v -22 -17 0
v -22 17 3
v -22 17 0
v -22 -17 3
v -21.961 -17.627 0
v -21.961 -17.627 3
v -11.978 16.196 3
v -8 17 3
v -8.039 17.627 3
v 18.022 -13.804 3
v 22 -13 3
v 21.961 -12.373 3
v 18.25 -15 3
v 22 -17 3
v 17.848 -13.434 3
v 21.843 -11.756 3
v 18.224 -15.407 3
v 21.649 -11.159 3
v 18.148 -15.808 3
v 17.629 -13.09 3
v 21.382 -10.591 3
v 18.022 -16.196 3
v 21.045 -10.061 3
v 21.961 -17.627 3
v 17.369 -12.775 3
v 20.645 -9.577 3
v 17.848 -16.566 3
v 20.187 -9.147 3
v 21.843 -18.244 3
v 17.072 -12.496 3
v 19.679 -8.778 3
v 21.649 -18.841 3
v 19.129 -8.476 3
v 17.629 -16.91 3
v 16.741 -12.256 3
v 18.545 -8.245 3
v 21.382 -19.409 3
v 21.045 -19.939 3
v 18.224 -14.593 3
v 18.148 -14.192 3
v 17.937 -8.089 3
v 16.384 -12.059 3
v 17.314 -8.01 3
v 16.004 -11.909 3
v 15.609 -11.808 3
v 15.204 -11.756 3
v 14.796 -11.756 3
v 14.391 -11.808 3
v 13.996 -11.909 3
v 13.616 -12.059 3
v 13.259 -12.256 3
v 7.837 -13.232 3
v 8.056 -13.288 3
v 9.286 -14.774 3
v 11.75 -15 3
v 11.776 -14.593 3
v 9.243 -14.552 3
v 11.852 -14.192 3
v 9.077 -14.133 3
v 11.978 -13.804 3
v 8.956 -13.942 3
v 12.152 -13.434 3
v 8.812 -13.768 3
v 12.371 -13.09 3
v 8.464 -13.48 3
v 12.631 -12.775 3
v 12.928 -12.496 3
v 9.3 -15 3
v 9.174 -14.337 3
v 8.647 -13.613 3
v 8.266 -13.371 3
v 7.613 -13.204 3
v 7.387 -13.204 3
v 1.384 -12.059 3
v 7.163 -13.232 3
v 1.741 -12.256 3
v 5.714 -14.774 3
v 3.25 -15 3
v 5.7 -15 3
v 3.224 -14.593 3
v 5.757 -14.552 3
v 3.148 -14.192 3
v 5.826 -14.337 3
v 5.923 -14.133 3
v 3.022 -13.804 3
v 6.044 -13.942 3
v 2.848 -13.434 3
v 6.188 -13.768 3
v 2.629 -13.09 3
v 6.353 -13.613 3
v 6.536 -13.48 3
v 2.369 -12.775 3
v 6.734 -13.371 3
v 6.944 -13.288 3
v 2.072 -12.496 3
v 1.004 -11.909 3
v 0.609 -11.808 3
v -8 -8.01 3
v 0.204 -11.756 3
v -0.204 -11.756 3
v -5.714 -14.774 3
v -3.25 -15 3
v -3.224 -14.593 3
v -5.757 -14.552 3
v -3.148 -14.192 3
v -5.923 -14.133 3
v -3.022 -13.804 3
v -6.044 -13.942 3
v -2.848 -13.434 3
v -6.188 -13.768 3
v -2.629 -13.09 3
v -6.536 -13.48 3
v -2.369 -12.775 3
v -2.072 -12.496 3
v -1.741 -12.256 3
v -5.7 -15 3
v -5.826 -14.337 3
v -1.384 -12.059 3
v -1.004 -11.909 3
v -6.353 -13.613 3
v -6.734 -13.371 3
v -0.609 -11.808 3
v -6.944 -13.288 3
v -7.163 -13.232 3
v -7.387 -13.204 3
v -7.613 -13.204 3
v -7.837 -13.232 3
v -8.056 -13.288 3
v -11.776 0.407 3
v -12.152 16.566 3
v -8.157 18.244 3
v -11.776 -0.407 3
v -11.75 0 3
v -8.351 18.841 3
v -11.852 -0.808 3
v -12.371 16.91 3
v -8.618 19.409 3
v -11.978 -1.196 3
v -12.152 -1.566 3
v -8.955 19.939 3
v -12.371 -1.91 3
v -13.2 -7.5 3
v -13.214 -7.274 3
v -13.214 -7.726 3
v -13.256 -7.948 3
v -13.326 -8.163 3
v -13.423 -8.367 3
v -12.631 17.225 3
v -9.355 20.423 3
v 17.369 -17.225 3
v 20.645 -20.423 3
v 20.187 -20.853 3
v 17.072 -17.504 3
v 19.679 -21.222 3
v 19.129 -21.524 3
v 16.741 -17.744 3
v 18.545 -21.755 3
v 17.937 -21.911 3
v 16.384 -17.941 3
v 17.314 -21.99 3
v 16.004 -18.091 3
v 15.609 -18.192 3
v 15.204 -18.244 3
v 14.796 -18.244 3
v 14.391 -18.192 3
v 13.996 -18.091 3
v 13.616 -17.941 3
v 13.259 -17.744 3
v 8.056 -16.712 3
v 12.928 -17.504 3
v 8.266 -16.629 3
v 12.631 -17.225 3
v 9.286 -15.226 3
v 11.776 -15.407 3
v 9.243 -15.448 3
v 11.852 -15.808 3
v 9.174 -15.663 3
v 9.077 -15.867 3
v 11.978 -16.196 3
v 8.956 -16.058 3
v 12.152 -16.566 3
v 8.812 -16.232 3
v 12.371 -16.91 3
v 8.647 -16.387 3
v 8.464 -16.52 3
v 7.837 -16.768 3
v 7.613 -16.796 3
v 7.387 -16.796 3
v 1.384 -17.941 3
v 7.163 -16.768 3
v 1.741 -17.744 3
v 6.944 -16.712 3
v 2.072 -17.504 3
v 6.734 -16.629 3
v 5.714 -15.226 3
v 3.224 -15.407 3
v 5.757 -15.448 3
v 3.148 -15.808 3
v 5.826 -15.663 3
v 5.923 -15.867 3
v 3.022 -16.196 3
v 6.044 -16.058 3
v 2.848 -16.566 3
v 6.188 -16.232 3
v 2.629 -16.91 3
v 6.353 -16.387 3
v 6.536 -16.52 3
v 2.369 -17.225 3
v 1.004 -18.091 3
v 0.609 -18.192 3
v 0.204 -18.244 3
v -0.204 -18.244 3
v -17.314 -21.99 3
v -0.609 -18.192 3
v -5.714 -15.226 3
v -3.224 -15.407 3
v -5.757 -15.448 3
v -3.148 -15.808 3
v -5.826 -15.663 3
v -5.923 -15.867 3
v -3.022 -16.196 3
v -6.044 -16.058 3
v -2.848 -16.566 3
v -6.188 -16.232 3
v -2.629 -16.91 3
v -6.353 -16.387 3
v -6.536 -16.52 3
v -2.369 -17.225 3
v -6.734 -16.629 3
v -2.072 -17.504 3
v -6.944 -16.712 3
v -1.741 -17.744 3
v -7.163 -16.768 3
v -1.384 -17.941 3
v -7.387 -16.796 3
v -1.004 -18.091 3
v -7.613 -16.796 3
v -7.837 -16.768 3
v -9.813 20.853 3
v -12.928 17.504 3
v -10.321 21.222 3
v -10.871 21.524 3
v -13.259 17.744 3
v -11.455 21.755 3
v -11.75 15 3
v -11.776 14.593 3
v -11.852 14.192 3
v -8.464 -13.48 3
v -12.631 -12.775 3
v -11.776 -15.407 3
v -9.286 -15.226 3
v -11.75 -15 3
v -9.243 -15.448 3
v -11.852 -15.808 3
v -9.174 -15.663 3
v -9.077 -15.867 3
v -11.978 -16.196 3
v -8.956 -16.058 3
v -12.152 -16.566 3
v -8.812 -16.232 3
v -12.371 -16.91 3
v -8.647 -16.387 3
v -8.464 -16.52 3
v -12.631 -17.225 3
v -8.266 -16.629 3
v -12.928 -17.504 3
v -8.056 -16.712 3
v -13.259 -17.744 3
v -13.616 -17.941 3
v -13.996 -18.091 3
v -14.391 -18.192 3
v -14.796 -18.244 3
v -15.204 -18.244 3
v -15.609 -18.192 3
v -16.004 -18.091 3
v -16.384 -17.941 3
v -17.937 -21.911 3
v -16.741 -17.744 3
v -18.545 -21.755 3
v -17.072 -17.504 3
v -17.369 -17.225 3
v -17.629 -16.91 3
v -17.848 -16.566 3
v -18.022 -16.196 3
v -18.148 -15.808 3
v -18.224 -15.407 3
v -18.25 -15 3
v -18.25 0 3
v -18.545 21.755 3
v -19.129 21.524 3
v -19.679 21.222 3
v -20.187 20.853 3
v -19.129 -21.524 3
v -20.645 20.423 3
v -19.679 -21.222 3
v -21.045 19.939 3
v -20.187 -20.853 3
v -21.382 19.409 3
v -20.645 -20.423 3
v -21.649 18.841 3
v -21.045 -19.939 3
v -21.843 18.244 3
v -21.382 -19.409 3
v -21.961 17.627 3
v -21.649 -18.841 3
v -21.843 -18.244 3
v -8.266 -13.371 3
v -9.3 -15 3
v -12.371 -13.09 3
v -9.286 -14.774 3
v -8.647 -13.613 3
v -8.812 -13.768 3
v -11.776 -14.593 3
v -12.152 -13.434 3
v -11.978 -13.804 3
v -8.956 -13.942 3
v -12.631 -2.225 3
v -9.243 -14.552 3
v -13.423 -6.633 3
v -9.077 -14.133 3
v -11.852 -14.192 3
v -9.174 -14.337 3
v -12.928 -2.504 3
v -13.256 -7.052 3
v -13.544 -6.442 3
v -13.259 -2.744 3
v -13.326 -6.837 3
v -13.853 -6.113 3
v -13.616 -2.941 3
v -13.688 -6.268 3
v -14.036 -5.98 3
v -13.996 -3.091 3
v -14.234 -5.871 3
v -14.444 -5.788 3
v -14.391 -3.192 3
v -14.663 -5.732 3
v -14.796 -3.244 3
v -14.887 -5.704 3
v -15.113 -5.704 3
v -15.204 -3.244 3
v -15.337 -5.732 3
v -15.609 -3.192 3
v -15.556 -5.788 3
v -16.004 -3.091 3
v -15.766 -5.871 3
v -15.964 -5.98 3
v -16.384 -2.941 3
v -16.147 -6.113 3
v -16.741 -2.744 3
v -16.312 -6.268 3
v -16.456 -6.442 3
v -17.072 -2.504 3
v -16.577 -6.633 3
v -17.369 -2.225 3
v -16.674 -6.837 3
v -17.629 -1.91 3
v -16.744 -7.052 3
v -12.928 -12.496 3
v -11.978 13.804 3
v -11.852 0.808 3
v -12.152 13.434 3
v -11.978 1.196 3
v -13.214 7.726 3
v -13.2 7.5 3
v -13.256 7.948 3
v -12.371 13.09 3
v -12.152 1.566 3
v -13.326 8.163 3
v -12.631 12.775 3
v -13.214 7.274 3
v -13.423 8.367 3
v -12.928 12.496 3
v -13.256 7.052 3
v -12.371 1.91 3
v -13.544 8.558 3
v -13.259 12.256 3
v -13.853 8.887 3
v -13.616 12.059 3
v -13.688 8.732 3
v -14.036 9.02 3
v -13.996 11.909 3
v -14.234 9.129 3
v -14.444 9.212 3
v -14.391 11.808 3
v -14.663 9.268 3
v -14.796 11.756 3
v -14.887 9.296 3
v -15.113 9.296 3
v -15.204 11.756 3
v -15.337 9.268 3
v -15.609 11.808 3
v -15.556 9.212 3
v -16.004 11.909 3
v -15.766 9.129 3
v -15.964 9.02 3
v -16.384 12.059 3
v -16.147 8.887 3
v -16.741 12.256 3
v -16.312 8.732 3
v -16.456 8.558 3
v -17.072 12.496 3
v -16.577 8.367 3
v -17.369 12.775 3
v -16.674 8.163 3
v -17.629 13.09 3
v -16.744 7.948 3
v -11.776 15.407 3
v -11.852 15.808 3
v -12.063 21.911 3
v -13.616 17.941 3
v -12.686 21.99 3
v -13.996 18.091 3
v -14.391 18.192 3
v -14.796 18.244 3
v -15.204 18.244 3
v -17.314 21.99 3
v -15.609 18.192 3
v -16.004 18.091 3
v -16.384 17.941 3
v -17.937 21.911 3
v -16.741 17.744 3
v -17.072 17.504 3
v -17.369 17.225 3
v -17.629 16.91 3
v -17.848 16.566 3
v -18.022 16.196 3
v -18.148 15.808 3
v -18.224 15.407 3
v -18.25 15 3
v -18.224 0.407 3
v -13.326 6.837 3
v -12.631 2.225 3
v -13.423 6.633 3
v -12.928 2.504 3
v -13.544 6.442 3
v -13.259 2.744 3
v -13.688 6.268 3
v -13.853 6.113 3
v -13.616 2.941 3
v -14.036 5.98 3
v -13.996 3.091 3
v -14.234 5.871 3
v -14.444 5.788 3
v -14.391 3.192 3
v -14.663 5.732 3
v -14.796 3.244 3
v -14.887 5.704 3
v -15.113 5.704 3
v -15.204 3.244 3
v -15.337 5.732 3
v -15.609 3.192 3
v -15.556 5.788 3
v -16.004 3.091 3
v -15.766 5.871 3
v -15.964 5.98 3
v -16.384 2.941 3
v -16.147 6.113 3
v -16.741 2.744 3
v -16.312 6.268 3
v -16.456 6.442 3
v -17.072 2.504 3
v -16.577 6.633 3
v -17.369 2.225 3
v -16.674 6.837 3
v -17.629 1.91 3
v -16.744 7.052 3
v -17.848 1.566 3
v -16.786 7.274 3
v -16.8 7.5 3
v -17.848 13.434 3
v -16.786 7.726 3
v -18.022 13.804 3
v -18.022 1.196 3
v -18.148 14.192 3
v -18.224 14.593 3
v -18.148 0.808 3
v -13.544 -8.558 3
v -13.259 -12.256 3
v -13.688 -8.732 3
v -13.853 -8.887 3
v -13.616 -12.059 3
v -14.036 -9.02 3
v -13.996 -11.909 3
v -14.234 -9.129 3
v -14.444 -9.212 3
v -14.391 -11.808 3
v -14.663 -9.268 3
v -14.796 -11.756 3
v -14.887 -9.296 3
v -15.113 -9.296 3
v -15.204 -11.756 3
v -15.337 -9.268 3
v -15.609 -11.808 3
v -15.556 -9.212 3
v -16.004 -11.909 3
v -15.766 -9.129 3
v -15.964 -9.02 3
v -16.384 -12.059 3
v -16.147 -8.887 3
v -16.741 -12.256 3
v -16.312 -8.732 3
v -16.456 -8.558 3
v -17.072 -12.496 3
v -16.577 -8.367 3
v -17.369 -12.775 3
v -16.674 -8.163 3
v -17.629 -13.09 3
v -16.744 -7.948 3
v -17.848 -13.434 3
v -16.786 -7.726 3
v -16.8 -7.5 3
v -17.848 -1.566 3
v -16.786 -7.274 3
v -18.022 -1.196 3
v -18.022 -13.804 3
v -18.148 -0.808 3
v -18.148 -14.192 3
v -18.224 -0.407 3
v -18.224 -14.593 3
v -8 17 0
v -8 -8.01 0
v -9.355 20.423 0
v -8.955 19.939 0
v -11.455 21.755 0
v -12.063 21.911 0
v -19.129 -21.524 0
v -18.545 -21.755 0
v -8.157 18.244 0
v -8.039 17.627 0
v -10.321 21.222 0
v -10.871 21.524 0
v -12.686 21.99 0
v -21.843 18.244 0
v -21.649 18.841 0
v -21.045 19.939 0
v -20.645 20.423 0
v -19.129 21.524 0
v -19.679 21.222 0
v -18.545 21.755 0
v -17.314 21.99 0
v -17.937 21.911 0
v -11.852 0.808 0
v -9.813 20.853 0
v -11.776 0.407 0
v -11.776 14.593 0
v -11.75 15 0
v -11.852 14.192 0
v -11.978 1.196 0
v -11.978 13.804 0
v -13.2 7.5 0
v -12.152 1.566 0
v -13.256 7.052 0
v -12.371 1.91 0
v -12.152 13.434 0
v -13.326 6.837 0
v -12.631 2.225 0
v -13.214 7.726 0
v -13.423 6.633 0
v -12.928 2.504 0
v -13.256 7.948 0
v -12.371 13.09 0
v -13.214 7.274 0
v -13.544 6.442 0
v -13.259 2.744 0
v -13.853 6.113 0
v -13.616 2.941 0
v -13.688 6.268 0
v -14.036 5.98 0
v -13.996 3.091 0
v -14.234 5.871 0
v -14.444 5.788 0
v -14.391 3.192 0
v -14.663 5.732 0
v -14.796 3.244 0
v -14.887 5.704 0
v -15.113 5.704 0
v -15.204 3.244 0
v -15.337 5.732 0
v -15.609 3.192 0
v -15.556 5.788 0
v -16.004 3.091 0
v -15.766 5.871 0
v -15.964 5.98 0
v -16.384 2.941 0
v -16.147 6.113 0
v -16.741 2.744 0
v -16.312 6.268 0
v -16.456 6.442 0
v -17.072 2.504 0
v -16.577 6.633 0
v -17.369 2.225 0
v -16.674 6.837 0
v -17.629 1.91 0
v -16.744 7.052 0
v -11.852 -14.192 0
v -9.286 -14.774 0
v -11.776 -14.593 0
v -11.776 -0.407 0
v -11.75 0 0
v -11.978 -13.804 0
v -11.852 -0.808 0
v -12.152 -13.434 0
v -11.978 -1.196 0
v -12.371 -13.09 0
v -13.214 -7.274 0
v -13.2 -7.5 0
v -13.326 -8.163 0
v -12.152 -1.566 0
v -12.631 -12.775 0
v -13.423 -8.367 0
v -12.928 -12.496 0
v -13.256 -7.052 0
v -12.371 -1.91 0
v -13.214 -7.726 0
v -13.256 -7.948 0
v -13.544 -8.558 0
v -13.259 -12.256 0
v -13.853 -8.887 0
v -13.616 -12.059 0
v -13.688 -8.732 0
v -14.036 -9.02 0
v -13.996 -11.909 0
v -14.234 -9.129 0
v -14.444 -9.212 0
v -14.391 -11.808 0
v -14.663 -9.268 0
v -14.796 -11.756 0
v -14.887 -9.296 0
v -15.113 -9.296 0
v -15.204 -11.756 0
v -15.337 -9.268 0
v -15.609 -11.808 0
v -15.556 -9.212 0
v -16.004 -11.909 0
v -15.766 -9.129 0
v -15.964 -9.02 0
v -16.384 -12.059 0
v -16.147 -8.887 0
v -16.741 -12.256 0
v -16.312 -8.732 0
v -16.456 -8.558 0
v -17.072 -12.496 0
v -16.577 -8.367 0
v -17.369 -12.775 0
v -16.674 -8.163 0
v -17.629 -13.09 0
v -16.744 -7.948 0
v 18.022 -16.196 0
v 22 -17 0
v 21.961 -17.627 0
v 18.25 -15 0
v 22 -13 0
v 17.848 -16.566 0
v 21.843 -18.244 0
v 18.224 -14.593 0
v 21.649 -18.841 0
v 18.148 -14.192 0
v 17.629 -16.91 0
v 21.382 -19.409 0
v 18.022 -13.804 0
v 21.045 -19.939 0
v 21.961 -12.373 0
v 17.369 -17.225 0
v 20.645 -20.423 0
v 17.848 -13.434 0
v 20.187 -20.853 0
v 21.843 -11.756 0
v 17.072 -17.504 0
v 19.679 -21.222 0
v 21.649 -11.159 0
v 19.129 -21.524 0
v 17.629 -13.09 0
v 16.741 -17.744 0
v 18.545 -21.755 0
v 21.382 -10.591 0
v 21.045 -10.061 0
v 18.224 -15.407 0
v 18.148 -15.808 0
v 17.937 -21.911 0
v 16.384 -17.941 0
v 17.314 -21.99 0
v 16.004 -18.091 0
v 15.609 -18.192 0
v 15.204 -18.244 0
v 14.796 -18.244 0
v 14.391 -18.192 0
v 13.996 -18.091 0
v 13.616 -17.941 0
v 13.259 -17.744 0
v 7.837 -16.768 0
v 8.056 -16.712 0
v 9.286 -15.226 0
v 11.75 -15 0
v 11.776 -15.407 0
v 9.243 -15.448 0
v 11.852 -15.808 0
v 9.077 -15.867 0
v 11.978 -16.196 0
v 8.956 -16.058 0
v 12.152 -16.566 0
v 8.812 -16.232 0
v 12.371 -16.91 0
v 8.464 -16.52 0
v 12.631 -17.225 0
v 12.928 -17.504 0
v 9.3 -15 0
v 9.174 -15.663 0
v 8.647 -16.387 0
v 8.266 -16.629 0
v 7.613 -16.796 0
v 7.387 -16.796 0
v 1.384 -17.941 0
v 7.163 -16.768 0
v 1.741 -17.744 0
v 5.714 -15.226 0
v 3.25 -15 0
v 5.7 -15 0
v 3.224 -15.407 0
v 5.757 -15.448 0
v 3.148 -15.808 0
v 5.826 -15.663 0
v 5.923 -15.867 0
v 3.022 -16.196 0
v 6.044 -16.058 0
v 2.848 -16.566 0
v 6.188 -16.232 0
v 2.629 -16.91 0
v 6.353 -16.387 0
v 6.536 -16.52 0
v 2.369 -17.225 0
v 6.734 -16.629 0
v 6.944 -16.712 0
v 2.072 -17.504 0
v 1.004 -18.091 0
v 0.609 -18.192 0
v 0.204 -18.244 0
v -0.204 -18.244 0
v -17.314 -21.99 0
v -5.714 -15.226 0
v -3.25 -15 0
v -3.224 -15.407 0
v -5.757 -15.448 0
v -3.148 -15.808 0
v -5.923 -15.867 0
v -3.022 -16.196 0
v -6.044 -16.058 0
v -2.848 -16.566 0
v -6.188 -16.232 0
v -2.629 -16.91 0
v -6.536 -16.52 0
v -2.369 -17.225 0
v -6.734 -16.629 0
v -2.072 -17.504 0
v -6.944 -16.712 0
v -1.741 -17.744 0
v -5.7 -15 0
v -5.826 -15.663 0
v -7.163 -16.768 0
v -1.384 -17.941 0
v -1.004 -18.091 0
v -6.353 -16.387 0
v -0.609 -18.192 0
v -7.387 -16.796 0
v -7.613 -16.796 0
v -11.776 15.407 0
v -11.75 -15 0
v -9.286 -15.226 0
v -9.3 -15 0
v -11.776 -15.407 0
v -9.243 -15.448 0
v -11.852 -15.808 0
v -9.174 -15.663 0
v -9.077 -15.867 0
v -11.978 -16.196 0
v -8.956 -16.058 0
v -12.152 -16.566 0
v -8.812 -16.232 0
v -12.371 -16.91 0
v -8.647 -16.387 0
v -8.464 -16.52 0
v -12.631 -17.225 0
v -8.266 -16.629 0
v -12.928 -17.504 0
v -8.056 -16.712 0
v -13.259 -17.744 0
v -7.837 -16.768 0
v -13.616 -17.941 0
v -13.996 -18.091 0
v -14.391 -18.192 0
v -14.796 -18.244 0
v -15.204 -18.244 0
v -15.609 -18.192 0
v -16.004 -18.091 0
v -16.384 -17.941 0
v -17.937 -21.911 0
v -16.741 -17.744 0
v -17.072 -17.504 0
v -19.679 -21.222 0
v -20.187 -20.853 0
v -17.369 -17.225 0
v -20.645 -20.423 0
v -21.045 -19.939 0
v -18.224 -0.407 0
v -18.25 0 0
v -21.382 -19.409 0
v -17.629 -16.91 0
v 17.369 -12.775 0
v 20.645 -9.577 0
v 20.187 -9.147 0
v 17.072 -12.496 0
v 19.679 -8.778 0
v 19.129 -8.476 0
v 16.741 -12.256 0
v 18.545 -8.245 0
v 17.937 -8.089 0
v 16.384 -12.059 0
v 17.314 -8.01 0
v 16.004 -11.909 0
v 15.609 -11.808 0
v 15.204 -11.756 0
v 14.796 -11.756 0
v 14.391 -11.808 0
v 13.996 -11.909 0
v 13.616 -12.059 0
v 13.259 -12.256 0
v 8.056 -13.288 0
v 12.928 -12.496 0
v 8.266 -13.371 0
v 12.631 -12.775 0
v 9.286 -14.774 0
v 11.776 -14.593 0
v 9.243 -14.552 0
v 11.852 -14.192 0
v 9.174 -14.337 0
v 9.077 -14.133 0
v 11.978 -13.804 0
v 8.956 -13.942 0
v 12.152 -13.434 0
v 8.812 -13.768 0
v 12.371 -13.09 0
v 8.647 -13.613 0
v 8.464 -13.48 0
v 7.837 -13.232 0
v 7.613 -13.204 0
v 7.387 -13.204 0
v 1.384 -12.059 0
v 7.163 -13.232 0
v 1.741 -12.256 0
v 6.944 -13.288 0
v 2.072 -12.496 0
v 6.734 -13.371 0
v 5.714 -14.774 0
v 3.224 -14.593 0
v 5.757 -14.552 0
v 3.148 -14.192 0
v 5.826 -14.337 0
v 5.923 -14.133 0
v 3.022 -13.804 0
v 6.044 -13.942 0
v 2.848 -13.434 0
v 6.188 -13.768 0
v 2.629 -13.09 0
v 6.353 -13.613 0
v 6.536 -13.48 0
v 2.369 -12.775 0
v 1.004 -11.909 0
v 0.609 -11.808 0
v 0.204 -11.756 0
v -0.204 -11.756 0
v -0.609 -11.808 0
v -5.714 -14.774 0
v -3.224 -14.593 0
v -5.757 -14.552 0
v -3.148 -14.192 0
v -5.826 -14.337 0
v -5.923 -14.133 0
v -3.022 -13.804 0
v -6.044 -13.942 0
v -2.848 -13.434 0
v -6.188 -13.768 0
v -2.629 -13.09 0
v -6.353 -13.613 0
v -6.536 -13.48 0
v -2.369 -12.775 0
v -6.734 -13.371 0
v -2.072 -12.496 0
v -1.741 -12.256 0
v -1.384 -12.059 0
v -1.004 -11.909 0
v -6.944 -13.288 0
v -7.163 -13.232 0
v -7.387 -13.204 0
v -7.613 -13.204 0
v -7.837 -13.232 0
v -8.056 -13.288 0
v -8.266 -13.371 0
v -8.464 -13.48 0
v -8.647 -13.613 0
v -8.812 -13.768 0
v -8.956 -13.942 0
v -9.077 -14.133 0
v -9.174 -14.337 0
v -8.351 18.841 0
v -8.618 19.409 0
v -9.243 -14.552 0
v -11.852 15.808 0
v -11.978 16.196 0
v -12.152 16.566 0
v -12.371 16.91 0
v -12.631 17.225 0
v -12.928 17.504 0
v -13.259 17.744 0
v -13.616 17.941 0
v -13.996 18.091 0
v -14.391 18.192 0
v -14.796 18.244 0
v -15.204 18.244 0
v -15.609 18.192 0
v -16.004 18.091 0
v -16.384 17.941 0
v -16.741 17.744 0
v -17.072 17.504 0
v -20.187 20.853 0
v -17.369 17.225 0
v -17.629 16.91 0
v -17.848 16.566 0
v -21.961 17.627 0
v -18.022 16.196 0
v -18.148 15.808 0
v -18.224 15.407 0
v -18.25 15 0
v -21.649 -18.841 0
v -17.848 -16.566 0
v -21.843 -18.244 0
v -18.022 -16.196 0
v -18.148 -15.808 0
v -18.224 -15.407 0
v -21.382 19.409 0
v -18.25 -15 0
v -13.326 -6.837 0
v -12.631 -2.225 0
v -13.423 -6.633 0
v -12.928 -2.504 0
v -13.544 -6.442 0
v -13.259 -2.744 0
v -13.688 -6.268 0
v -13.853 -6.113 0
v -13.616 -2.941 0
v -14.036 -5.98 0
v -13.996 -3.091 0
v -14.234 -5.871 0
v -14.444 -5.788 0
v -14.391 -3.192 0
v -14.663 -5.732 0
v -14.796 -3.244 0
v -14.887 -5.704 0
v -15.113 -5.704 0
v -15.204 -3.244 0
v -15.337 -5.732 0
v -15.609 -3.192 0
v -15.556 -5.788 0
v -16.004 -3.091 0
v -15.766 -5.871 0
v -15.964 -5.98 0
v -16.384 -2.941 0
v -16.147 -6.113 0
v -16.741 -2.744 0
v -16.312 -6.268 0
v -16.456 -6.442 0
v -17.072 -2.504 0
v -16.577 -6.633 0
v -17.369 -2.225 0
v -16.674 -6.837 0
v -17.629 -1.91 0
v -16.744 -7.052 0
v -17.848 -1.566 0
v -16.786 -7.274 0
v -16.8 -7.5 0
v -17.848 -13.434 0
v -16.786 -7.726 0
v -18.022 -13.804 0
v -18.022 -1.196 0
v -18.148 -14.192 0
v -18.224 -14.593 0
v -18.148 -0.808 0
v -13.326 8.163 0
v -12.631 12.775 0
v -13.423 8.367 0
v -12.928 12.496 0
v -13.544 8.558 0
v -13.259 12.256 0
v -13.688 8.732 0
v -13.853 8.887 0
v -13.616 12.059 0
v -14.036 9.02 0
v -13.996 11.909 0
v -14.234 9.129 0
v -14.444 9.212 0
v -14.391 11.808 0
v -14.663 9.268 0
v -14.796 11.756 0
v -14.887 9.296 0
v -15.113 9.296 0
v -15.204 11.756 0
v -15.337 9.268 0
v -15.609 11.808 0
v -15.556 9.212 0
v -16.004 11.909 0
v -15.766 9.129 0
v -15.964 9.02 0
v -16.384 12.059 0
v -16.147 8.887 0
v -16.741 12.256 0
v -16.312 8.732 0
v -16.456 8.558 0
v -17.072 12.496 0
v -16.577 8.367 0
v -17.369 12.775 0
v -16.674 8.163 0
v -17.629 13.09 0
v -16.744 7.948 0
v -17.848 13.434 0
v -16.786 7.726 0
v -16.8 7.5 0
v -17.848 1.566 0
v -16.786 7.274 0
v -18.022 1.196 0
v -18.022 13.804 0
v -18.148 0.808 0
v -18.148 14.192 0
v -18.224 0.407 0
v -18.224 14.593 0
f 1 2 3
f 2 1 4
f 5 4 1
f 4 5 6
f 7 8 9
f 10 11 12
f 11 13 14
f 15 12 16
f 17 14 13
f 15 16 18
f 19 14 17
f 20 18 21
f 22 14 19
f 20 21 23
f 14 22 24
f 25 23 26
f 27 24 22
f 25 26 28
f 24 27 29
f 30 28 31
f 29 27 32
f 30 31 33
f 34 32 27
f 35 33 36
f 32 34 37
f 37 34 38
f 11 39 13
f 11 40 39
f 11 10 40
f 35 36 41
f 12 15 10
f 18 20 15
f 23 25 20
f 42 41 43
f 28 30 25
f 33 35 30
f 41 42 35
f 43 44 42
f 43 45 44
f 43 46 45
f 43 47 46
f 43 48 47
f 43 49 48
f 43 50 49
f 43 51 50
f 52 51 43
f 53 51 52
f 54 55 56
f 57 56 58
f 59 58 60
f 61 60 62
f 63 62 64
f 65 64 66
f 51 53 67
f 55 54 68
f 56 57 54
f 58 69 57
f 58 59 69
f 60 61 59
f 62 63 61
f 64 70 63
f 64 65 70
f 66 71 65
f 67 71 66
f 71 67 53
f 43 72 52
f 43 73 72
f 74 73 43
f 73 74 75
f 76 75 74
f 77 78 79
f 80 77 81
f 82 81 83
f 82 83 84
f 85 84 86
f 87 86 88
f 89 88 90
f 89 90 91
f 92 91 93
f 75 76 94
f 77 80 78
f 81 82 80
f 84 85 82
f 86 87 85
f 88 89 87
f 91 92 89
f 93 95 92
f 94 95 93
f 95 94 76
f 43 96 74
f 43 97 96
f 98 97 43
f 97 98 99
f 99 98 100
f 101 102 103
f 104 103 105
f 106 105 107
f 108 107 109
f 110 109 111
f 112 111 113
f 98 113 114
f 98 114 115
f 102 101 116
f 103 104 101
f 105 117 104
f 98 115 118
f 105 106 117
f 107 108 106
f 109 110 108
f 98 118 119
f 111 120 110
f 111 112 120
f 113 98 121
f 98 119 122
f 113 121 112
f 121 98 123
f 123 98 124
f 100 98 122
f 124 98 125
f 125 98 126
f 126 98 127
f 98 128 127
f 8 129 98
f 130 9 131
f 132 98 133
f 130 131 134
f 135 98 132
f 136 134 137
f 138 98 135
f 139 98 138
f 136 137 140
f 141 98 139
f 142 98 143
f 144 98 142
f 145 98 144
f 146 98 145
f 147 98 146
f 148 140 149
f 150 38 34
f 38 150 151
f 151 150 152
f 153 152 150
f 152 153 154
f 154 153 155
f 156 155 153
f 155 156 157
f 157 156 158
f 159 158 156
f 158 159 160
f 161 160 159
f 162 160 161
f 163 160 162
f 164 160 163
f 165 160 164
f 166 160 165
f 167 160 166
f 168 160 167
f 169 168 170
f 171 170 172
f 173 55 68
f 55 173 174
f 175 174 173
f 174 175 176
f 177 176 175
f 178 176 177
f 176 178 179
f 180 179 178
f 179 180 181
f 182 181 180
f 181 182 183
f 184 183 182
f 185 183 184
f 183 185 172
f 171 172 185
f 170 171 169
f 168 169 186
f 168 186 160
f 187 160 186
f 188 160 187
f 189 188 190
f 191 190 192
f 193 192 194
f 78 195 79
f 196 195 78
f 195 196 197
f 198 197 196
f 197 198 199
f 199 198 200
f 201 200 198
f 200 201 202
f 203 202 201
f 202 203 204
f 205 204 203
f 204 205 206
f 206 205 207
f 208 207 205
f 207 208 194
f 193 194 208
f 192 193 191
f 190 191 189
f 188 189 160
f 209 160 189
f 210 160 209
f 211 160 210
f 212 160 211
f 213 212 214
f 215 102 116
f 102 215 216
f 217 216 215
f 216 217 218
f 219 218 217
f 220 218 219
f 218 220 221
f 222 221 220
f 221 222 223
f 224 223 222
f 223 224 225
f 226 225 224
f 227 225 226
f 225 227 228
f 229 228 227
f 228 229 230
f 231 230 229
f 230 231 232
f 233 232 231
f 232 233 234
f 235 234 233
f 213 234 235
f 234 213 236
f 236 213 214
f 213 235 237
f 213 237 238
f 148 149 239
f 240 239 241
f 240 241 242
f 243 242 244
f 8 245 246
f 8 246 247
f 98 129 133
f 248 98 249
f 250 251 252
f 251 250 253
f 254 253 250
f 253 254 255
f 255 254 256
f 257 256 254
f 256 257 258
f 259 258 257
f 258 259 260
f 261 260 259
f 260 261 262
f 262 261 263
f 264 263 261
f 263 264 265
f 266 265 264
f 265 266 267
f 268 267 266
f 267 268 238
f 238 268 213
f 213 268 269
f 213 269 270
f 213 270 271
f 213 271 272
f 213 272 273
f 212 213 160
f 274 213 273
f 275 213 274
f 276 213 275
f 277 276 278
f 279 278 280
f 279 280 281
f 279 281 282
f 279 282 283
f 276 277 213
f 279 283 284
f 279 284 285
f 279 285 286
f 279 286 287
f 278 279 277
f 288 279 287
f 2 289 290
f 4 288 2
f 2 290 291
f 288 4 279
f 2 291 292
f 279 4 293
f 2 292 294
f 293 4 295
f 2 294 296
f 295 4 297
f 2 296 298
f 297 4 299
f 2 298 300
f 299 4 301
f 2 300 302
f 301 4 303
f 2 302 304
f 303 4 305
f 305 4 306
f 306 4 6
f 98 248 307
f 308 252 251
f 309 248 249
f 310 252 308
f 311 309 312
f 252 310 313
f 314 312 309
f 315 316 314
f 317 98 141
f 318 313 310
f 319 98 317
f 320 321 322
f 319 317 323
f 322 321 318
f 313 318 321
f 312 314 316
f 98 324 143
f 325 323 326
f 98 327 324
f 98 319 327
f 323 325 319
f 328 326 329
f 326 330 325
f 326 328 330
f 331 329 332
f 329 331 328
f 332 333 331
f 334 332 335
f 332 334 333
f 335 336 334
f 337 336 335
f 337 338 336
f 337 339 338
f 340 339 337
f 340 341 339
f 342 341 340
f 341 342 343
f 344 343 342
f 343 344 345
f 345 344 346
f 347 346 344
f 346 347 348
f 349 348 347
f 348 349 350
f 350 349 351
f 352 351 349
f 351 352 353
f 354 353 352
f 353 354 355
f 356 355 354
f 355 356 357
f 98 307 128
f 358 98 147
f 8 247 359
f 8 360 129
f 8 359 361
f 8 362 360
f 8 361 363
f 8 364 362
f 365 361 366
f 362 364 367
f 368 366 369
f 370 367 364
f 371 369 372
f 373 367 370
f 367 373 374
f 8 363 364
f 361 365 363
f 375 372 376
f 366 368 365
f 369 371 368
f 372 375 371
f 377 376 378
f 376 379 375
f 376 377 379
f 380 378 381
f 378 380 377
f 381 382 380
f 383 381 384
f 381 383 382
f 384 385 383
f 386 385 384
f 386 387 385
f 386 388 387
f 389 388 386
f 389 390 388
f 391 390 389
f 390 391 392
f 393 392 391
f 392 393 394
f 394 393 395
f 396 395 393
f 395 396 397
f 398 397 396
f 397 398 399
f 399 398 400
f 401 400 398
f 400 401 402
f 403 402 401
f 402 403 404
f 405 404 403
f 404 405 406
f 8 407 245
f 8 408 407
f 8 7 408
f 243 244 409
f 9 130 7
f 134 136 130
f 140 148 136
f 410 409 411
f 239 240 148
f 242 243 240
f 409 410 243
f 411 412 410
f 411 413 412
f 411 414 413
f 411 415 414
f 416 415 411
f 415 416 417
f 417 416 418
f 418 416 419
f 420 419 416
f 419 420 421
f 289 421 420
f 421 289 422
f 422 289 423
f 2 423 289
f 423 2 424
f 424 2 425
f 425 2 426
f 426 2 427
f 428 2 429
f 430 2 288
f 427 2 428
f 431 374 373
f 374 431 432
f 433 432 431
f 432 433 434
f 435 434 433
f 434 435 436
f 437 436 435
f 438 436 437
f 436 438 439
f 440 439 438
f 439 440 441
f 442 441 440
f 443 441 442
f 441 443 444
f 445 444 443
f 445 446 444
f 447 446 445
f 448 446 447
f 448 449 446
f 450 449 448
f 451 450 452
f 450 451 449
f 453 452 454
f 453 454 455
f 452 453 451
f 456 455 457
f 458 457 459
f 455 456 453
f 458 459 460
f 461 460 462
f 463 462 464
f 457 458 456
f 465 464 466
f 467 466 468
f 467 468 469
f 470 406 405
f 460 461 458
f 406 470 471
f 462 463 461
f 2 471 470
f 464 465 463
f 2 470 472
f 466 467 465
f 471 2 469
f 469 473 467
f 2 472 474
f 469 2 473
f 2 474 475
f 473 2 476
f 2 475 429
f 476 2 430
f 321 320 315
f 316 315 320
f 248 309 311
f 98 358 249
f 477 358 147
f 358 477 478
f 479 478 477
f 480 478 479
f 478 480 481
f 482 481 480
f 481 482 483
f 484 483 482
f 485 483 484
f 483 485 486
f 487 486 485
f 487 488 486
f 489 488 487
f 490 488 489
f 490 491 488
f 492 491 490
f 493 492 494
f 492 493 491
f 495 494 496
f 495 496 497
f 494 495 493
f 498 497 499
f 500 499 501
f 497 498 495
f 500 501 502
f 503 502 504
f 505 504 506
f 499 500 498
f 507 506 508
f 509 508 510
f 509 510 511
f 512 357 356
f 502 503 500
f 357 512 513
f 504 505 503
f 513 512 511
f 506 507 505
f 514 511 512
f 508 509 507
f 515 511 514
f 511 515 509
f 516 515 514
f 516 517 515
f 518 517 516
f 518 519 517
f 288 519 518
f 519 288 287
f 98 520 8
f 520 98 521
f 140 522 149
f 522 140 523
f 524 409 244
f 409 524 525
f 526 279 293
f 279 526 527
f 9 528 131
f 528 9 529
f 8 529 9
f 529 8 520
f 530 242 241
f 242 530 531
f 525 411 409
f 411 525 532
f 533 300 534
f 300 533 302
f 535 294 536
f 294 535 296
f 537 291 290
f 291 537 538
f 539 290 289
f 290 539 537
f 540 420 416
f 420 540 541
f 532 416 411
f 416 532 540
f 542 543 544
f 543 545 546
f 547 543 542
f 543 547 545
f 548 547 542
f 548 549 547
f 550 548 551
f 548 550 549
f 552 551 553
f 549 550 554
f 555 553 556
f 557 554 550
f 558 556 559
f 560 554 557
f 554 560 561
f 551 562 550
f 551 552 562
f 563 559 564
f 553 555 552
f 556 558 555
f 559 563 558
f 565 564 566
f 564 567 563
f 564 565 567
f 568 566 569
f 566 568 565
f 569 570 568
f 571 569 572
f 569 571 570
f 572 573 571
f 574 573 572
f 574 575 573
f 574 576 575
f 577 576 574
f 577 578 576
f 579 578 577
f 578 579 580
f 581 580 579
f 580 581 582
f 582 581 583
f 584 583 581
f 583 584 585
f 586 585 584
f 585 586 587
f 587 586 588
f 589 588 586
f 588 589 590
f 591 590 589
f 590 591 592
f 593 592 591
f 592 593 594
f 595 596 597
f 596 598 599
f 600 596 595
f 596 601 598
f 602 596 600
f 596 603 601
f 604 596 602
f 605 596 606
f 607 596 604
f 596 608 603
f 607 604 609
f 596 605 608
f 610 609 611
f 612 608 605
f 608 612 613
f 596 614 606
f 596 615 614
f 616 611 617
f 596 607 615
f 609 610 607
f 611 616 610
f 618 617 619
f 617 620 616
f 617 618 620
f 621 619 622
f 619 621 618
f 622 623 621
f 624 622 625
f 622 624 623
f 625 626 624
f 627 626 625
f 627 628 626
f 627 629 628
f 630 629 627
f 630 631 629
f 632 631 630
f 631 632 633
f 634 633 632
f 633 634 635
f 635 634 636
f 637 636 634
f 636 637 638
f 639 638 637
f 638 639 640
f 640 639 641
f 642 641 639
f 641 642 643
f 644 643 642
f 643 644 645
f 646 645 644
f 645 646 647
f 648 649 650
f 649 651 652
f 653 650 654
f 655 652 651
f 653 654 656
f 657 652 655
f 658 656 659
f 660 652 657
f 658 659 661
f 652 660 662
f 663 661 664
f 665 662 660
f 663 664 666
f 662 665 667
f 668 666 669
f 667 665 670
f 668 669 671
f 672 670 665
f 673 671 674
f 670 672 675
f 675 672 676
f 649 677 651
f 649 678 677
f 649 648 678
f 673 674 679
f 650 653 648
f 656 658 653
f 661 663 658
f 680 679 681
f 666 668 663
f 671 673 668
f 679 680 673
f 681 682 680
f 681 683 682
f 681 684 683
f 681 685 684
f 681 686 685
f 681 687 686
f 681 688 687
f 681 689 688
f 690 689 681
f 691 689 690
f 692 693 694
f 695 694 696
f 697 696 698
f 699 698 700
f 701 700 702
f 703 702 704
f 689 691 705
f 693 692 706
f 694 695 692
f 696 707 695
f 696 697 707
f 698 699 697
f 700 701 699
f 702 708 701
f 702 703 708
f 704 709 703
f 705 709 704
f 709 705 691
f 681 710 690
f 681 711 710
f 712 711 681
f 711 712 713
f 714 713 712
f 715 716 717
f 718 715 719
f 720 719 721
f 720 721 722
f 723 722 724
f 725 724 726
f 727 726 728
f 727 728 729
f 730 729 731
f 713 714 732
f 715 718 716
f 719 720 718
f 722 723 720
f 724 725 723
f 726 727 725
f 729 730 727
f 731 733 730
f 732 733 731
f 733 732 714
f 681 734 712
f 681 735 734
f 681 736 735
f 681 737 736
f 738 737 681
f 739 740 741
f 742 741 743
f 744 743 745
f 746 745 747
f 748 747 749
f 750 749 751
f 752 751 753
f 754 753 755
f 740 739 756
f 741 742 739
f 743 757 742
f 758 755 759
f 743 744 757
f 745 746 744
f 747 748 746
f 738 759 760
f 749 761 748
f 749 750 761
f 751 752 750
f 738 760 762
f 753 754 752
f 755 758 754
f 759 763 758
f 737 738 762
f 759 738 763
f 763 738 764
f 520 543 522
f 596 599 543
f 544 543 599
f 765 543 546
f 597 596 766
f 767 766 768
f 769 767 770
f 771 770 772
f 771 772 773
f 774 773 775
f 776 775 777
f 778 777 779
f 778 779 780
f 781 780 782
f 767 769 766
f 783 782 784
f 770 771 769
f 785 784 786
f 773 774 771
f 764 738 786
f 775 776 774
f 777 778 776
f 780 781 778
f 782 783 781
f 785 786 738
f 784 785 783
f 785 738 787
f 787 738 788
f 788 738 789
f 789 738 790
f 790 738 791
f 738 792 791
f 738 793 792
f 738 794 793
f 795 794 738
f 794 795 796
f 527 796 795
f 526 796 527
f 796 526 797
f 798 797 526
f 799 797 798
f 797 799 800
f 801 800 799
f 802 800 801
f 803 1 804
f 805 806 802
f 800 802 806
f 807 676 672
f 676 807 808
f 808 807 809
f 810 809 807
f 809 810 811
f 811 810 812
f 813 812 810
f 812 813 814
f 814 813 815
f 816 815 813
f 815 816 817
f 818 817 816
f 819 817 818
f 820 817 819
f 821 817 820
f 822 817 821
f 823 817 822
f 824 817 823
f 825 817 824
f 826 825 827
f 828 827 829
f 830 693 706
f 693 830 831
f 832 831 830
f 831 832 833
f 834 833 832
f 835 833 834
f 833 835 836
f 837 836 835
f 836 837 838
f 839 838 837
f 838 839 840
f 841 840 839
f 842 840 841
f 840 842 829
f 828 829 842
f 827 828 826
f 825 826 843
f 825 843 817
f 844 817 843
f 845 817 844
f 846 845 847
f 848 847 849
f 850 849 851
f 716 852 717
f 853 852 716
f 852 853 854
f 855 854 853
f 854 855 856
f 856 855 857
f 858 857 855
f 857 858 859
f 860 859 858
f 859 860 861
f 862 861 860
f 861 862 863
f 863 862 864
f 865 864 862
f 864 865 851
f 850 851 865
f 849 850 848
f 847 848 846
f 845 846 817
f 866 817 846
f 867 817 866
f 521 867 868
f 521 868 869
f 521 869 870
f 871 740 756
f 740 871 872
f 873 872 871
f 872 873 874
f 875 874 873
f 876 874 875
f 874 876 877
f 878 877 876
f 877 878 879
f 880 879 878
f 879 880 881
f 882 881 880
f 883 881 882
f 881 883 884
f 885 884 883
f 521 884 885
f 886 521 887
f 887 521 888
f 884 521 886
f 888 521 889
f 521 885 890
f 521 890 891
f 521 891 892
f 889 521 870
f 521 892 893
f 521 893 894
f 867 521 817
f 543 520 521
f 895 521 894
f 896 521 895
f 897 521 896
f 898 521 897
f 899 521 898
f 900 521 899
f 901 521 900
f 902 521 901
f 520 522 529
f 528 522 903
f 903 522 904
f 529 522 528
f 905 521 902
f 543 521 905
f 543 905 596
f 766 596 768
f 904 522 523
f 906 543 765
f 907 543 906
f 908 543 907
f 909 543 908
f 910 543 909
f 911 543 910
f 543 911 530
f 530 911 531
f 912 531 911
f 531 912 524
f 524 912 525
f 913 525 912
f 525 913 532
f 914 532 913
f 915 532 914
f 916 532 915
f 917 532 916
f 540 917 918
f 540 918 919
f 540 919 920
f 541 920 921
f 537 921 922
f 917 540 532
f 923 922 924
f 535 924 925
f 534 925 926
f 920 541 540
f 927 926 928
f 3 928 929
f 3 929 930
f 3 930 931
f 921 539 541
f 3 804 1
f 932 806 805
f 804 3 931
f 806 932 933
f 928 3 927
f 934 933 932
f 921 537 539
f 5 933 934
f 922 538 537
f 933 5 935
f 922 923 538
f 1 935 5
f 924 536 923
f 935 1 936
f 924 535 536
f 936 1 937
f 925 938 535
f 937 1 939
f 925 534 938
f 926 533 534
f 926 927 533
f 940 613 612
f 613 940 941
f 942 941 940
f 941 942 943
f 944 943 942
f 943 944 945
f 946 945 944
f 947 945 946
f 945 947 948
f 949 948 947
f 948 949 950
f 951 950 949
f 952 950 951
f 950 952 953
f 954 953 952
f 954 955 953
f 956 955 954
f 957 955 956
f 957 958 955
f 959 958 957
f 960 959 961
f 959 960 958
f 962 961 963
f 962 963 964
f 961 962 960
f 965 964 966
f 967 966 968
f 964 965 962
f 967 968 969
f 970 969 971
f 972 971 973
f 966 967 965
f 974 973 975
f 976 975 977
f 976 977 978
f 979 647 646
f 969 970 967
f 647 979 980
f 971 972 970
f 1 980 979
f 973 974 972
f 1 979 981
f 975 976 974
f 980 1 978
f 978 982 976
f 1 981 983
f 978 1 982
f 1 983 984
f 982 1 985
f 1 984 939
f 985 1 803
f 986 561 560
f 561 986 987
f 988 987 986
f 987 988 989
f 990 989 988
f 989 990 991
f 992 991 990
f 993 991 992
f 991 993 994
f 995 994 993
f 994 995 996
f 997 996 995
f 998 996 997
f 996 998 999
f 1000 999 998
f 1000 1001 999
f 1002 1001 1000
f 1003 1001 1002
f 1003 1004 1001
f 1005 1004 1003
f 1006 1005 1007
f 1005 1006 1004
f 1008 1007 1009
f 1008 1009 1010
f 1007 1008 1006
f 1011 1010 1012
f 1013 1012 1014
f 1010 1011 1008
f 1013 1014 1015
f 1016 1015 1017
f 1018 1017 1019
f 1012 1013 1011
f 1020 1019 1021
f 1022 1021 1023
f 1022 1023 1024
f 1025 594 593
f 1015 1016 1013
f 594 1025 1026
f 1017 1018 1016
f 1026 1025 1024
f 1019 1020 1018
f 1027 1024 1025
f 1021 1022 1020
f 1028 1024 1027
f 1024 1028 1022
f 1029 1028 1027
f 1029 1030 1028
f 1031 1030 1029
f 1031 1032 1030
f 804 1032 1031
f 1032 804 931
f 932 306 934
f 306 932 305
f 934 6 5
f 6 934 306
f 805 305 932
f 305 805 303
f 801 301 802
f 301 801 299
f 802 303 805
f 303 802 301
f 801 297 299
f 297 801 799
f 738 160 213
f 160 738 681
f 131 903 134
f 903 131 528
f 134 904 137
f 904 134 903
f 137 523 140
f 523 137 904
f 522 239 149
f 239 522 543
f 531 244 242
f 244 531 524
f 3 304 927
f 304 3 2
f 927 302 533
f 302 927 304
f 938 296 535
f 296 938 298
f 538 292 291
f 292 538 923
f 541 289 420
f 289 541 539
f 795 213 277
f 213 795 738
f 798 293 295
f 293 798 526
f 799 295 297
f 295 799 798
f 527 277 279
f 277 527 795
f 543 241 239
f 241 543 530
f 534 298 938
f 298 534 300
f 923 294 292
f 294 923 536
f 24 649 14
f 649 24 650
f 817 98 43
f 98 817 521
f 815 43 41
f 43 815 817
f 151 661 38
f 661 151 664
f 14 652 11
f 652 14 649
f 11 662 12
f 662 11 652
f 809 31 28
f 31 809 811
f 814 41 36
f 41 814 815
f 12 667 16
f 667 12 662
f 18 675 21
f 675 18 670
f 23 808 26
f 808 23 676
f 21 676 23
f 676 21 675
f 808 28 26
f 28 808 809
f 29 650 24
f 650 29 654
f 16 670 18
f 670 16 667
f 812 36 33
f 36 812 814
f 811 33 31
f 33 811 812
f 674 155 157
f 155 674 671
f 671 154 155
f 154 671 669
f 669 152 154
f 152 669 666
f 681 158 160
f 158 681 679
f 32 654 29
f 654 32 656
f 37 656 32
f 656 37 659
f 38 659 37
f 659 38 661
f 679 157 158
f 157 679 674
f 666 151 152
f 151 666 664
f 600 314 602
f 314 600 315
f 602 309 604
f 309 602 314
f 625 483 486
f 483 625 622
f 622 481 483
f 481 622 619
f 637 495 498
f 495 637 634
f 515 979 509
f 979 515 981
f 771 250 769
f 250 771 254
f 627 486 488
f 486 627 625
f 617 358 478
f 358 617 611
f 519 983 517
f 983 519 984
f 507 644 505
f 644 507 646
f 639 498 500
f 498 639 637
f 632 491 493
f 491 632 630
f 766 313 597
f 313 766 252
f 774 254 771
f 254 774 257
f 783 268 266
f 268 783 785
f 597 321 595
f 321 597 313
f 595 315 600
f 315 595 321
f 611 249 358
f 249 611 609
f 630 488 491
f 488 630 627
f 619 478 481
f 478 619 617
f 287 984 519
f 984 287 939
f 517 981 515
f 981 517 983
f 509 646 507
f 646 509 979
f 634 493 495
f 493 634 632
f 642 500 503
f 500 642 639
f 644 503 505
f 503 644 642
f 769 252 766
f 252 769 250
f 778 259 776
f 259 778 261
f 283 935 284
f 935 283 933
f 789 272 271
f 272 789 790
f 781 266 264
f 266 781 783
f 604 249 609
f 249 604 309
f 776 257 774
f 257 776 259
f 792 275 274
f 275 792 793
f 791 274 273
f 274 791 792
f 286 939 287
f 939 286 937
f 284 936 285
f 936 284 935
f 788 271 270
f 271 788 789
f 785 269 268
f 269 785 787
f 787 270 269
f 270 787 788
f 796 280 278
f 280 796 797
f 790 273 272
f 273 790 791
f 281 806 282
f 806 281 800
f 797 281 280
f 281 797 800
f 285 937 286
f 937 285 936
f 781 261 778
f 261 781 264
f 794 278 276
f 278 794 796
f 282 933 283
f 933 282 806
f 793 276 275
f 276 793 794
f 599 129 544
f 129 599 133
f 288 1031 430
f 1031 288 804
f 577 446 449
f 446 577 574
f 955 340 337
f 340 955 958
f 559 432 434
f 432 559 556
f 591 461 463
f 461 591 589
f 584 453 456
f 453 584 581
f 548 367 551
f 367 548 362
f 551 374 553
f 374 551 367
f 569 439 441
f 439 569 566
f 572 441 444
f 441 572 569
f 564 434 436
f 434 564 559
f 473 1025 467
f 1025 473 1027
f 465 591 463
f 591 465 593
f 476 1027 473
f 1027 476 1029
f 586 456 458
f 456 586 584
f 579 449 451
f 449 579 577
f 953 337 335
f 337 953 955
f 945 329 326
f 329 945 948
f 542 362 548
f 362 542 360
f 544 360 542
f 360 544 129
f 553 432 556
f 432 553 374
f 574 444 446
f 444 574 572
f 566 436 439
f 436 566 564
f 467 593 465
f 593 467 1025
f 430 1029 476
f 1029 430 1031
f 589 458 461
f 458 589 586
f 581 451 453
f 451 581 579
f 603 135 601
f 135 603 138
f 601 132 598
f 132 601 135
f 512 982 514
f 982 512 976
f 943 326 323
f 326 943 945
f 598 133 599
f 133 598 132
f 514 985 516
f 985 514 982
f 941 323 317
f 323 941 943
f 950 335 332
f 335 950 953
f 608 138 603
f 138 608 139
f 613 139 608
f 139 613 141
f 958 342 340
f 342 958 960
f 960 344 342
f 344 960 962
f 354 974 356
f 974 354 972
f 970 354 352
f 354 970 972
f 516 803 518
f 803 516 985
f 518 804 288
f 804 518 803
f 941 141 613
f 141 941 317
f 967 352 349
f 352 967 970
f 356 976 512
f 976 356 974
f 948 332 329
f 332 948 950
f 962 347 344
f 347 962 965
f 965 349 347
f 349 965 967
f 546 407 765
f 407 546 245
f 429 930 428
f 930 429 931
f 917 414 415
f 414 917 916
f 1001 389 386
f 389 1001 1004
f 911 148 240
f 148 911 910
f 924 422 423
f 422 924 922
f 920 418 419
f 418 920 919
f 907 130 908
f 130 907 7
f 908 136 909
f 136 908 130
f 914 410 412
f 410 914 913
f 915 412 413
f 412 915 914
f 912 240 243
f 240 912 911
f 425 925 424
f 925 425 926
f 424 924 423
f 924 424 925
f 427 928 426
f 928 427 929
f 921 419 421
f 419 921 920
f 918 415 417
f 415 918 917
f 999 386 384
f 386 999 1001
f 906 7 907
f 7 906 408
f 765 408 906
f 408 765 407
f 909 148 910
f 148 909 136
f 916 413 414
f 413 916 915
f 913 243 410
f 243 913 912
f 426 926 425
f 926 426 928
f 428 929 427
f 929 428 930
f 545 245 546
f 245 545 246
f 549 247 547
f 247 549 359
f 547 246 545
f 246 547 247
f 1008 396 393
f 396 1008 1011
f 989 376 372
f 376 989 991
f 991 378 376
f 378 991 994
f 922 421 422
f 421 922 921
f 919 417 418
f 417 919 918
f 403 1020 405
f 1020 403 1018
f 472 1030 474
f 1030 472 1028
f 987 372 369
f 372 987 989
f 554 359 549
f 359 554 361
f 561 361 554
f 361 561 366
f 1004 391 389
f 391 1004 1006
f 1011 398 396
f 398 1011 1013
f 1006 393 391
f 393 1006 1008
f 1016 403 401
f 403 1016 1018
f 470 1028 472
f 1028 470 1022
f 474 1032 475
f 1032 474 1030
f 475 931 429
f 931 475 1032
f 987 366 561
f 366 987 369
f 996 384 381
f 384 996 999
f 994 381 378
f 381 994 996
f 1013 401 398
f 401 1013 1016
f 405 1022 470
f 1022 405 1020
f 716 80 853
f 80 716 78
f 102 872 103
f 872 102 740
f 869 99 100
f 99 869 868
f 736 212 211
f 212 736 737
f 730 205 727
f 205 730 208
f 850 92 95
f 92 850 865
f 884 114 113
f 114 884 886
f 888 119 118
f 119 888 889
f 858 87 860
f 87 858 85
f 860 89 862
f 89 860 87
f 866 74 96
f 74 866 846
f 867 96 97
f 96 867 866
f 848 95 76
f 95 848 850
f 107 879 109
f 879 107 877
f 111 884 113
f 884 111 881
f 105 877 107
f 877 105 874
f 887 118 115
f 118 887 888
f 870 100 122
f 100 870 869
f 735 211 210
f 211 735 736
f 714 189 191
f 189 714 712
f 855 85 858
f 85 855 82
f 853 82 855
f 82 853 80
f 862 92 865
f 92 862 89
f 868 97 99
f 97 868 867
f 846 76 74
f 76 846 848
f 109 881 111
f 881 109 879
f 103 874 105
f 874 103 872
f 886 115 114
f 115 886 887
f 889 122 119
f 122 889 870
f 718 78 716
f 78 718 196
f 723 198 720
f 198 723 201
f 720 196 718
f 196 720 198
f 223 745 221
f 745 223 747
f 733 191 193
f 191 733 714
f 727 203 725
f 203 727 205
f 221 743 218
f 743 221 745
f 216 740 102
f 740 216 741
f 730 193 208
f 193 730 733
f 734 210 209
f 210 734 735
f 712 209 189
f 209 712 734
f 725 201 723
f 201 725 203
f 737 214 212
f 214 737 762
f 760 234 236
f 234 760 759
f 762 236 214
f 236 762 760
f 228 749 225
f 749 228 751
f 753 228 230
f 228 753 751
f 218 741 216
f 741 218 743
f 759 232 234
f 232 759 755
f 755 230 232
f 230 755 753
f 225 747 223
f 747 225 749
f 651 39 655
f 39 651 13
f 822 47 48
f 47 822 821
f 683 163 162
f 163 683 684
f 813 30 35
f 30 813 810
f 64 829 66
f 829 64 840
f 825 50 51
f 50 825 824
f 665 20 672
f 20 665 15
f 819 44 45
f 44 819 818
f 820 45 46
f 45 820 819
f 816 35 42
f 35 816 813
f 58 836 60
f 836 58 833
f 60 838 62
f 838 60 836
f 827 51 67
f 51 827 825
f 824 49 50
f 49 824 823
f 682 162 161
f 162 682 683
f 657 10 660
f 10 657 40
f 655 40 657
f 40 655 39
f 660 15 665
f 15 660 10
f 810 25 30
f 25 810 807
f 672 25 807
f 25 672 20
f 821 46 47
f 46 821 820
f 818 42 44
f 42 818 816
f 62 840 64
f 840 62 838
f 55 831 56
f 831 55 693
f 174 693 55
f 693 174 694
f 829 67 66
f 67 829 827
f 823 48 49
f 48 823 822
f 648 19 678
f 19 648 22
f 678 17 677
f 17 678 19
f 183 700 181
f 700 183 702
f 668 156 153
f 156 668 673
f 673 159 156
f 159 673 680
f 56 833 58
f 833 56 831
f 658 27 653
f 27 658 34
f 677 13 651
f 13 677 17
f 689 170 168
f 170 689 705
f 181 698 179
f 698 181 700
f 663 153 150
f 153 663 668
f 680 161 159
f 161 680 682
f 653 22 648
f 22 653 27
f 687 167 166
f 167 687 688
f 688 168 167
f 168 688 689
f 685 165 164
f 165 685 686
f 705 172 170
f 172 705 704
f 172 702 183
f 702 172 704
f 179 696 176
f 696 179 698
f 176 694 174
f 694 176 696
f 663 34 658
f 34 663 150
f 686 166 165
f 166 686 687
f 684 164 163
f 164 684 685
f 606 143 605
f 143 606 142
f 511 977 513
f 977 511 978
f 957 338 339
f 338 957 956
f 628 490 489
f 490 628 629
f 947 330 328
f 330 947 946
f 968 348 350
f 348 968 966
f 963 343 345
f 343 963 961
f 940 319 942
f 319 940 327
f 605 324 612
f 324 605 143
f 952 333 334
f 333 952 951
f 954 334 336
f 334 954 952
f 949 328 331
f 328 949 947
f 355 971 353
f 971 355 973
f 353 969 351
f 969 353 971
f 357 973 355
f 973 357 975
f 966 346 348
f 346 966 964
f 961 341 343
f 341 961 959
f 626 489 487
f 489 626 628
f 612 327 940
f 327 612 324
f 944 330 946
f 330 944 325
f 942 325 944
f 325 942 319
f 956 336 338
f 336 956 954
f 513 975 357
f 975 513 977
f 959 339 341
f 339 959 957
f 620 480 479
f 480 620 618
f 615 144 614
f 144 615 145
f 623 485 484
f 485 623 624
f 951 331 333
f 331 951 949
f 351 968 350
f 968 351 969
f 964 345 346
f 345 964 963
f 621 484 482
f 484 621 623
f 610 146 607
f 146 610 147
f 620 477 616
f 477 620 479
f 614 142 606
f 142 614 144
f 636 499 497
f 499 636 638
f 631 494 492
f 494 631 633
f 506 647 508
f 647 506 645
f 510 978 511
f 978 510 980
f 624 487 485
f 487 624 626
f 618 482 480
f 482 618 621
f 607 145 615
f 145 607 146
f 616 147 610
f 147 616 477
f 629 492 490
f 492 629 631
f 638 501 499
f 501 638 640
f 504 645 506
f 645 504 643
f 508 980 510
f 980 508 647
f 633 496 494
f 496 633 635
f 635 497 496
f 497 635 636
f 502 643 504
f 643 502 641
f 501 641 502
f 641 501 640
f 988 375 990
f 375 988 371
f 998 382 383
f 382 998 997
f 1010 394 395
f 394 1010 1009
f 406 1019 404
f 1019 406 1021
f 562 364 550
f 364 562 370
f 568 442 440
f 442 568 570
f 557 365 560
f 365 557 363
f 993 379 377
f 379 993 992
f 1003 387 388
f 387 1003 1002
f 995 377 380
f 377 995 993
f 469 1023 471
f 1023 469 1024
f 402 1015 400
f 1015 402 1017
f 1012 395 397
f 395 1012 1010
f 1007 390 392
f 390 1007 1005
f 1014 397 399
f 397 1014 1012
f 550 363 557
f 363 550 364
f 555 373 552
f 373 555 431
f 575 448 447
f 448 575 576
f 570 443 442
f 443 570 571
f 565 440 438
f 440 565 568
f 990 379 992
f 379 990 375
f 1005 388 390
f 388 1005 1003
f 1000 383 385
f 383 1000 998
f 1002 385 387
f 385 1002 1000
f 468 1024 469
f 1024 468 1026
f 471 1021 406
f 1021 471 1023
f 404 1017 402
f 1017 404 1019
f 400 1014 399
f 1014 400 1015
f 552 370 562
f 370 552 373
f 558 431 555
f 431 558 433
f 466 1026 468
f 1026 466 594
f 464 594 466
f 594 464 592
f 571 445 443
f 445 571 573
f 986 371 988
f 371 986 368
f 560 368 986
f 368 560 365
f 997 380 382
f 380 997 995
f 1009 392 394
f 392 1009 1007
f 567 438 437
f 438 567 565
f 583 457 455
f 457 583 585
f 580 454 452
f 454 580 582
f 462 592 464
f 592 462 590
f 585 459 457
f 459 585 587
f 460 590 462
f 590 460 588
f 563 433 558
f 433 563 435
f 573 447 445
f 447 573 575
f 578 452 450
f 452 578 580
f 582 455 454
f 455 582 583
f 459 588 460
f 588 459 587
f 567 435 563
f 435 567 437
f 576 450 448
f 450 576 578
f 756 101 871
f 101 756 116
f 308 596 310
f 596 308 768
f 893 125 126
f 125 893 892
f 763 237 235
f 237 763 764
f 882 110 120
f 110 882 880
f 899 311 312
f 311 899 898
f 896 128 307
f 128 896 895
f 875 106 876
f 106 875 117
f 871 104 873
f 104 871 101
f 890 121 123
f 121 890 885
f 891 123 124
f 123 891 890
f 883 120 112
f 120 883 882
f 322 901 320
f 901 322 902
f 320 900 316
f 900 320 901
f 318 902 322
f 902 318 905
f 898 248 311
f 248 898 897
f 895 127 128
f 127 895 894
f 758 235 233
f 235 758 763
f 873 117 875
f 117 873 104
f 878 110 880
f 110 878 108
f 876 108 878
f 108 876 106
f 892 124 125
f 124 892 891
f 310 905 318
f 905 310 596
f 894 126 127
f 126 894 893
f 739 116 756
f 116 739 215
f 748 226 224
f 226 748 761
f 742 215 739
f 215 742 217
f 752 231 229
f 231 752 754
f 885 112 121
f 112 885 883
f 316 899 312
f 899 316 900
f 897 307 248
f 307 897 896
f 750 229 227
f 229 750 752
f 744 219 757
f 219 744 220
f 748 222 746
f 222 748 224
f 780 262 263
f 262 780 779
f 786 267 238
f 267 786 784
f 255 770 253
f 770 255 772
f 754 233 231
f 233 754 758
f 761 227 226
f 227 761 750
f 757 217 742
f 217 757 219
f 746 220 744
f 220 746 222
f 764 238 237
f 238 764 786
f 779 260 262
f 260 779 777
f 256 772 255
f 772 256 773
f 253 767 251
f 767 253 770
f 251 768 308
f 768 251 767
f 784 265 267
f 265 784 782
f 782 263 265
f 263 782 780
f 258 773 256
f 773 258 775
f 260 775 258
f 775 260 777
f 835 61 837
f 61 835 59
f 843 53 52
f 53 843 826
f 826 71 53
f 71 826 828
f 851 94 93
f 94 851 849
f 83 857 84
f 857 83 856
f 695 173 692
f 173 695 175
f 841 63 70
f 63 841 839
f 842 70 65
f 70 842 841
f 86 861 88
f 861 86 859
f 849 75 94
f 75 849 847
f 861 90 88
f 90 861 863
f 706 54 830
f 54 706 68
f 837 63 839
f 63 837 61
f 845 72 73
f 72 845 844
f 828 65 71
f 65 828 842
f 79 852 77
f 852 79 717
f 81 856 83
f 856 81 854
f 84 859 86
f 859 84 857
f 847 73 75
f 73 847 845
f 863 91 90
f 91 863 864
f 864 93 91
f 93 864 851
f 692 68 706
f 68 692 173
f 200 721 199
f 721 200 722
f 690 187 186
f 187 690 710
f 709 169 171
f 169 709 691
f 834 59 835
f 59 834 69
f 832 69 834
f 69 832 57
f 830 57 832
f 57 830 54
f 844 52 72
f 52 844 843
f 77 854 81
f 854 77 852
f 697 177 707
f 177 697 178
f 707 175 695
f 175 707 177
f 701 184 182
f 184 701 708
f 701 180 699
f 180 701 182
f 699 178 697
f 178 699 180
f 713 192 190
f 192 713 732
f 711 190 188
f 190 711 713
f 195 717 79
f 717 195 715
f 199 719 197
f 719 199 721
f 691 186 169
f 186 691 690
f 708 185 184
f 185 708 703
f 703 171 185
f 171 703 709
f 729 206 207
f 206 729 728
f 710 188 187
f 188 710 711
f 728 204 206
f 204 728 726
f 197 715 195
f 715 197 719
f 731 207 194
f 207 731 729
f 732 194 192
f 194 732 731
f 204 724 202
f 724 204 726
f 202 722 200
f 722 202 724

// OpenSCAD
$fn = 50;


difference() {
	union() {
		translate(v = [-15.0000000000, 0, 0]) {
			hull() {
				translate(v = [-2.0000000000, 17.0000000000, 0]) {
					cylinder(h = 3, r = 5);
				}
				translate(v = [2.0000000000, 17.0000000000, 0]) {
					cylinder(h = 3, r = 5);
				}
				translate(v = [-2.0000000000, -17.0000000000, 0]) {
					cylinder(h = 3, r = 5);
				}
				translate(v = [2.0000000000, -17.0000000000, 0]) {
					cylinder(h = 3, r = 5);
				}
			}
		}
		translate(v = [0, -15.0000000000, 0]) {
			hull() {
				translate(v = [-17.0000000000, 2.0000000000, 0]) {
					cylinder(h = 3, r = 5);
				}
				translate(v = [17.0000000000, 2.0000000000, 0]) {
					cylinder(h = 3, r = 5);
				}
				translate(v = [-17.0000000000, -2.0000000000, 0]) {
					cylinder(h = 3, r = 5);
				}
				translate(v = [17.0000000000, -2.0000000000, 0]) {
					cylinder(h = 3, r = 5);
				}
			}
		}
	}
	union() {
		#translate(v = [-15.0000000000, -15.0000000000, 0]) {
			cylinder(h = 3, r = 3.2500000000);
		}
		#translate(v = [-15.0000000000, 0.0000000000, 0]) {
			cylinder(h = 3, r = 3.2500000000);
		}
		#translate(v = [-15.0000000000, 15.0000000000, 0]) {
			cylinder(h = 3, r = 3.2500000000);
		}
		#translate(v = [-15.0000000000, -15.0000000000, 0]) {
			cylinder(h = 3, r = 3.2500000000);
		}
		#translate(v = [0.0000000000, -15.0000000000, 0]) {
			cylinder(h = 3, r = 3.2500000000);
		}
		#translate(v = [15.0000000000, -15.0000000000, 0]) {
			cylinder(h = 3, r = 3.2500000000);
		}
		#translate(v = [-15.0000000000, -15.0000000000, 0]) {
			cylinder(h = 3, r = 1.8000000000);
		}
		#translate(v = [-15.0000000000, -7.5000000000, 0]) {
			cylinder(h = 3, r = 1.8000000000);
		}
		#translate(v = [-15.0000000000, 0.0000000000, 0]) {
			cylinder(h = 3, r = 1.8000000000);
		}
		#translate(v = [-15.0000000000, 7.5000000000, 0]) {
			cylinder(h = 3, r = 1.8000000000);
		}
		#translate(v = [-15.0000000000, 15.0000000000, 0]) {
			cylinder(h = 3, r = 1.8000000000);
		}
		#translate(v = [-15.0000000000, -15.0000000000, 0]) {
			cylinder(h = 3, r = 1.8000000000);
		}
		#translate(v = [-7.5000000000, -15.0000000000, 0]) {
			cylinder(h = 3, r = 1.8000000000);
		}
		#translate(v = [0.0000000000, -15.0000000000, 0]) {
			cylinder(h = 3, r = 1.8000000000);
		}
		#translate(v = [7.5000000000, -15.0000000000, 0]) {
			cylinder(h = 3, r = 1.8000000000);
		}
		#translate(v = [15.0000000000, -15.0000000000, 0]) {
			cylinder(h = 3, r = 1.8000000000);
		}
		#translate(v = [-15.0000000000, -15.0000000000, 0]) {
			cylinder(h = 3, r = 1.8000000000);
		}
		#translate(v = [-15.0000000000, -7.5000000000, 0]) {
			cylinder(h = 3, r = 1.8000000000);
		}
		#translate(v = [-15.0000000000, 0.0000000000, 0]) {
			cylinder(h = 3, r = 1.8000000000);
		}
		#translate(v = [-15.0000000000, 7.5000000000, 0]) {
			cylinder(h = 3, r = 1.8000000000);
		}
		#translate(v = [-15.0000000000, 15.0000000000, 0]) {
			cylinder(h = 3, r = 1.8000000000);
		}
		#translate(v = [-15.0000000000, -15.0000000000, 0]) {
			cylinder(h = 3, r = 1.8000000000);
		}
		#translate(v = [-7.5000000000, -15.0000000000, 0]) {
			cylinder(h = 3, r = 1.8000000000);
		}
		#translate(v = [0.0000000000, -15.0000000000, 0]) {
			cylinder(h = 3, r = 1.8000000000);
		}
		#translate(v = [7.5000000000, -15.0000000000, 0]) {
			cylinder(h = 3, r = 1.8000000000);
		}
		#translate(v = [15.0000000000, -15.0000000000, 0]) {
			cylinder(h = 3, r = 1.8000000000);
		}
		#translate(v = [-15.0000000000, -15.0000000000, 0]) {
			cylinder(h = 3, r = 1.8000000000);
		}
		#translate(v = [-15.0000000000, -7.5000000000, 0]) {
			cylinder(h = 3, r = 1.8000000000);
		}
		#translate(v = [-15.0000000000, 0.0000000000, 0]) {
			cylinder(h = 3, r = 1.8000000000);
		}
		#translate(v = [-15.0000000000, 7.5000000000, 0]) {
			cylinder(h = 3, r = 1.8000000000);
		}
		#translate(v = [-15.0000000000, 15.0000000000, 0]) {
			cylinder(h = 3, r = 1.8000000000);
		}
		#translate(v = [-15.0000000000, -15.0000000000, 0]) {
			cylinder(h = 3, r = 1.8000000000);
		}
		#translate(v = [-7.5000000000, -15.0000000000, 0]) {
			cylinder(h = 3, r = 1.8000000000);
		}
		#translate(v = [0.0000000000, -15.0000000000, 0]) {
			cylinder(h = 3, r = 1.8000000000);
		}
		#translate(v = [7.5000000000, -15.0000000000, 0]) {
			cylinder(h = 3, r = 1.8000000000);
		}
		#translate(v = [15.0000000000, -15.0000000000, 0]) {
			cylinder(h = 3, r = 1.8000000000);
		}
	}
}
